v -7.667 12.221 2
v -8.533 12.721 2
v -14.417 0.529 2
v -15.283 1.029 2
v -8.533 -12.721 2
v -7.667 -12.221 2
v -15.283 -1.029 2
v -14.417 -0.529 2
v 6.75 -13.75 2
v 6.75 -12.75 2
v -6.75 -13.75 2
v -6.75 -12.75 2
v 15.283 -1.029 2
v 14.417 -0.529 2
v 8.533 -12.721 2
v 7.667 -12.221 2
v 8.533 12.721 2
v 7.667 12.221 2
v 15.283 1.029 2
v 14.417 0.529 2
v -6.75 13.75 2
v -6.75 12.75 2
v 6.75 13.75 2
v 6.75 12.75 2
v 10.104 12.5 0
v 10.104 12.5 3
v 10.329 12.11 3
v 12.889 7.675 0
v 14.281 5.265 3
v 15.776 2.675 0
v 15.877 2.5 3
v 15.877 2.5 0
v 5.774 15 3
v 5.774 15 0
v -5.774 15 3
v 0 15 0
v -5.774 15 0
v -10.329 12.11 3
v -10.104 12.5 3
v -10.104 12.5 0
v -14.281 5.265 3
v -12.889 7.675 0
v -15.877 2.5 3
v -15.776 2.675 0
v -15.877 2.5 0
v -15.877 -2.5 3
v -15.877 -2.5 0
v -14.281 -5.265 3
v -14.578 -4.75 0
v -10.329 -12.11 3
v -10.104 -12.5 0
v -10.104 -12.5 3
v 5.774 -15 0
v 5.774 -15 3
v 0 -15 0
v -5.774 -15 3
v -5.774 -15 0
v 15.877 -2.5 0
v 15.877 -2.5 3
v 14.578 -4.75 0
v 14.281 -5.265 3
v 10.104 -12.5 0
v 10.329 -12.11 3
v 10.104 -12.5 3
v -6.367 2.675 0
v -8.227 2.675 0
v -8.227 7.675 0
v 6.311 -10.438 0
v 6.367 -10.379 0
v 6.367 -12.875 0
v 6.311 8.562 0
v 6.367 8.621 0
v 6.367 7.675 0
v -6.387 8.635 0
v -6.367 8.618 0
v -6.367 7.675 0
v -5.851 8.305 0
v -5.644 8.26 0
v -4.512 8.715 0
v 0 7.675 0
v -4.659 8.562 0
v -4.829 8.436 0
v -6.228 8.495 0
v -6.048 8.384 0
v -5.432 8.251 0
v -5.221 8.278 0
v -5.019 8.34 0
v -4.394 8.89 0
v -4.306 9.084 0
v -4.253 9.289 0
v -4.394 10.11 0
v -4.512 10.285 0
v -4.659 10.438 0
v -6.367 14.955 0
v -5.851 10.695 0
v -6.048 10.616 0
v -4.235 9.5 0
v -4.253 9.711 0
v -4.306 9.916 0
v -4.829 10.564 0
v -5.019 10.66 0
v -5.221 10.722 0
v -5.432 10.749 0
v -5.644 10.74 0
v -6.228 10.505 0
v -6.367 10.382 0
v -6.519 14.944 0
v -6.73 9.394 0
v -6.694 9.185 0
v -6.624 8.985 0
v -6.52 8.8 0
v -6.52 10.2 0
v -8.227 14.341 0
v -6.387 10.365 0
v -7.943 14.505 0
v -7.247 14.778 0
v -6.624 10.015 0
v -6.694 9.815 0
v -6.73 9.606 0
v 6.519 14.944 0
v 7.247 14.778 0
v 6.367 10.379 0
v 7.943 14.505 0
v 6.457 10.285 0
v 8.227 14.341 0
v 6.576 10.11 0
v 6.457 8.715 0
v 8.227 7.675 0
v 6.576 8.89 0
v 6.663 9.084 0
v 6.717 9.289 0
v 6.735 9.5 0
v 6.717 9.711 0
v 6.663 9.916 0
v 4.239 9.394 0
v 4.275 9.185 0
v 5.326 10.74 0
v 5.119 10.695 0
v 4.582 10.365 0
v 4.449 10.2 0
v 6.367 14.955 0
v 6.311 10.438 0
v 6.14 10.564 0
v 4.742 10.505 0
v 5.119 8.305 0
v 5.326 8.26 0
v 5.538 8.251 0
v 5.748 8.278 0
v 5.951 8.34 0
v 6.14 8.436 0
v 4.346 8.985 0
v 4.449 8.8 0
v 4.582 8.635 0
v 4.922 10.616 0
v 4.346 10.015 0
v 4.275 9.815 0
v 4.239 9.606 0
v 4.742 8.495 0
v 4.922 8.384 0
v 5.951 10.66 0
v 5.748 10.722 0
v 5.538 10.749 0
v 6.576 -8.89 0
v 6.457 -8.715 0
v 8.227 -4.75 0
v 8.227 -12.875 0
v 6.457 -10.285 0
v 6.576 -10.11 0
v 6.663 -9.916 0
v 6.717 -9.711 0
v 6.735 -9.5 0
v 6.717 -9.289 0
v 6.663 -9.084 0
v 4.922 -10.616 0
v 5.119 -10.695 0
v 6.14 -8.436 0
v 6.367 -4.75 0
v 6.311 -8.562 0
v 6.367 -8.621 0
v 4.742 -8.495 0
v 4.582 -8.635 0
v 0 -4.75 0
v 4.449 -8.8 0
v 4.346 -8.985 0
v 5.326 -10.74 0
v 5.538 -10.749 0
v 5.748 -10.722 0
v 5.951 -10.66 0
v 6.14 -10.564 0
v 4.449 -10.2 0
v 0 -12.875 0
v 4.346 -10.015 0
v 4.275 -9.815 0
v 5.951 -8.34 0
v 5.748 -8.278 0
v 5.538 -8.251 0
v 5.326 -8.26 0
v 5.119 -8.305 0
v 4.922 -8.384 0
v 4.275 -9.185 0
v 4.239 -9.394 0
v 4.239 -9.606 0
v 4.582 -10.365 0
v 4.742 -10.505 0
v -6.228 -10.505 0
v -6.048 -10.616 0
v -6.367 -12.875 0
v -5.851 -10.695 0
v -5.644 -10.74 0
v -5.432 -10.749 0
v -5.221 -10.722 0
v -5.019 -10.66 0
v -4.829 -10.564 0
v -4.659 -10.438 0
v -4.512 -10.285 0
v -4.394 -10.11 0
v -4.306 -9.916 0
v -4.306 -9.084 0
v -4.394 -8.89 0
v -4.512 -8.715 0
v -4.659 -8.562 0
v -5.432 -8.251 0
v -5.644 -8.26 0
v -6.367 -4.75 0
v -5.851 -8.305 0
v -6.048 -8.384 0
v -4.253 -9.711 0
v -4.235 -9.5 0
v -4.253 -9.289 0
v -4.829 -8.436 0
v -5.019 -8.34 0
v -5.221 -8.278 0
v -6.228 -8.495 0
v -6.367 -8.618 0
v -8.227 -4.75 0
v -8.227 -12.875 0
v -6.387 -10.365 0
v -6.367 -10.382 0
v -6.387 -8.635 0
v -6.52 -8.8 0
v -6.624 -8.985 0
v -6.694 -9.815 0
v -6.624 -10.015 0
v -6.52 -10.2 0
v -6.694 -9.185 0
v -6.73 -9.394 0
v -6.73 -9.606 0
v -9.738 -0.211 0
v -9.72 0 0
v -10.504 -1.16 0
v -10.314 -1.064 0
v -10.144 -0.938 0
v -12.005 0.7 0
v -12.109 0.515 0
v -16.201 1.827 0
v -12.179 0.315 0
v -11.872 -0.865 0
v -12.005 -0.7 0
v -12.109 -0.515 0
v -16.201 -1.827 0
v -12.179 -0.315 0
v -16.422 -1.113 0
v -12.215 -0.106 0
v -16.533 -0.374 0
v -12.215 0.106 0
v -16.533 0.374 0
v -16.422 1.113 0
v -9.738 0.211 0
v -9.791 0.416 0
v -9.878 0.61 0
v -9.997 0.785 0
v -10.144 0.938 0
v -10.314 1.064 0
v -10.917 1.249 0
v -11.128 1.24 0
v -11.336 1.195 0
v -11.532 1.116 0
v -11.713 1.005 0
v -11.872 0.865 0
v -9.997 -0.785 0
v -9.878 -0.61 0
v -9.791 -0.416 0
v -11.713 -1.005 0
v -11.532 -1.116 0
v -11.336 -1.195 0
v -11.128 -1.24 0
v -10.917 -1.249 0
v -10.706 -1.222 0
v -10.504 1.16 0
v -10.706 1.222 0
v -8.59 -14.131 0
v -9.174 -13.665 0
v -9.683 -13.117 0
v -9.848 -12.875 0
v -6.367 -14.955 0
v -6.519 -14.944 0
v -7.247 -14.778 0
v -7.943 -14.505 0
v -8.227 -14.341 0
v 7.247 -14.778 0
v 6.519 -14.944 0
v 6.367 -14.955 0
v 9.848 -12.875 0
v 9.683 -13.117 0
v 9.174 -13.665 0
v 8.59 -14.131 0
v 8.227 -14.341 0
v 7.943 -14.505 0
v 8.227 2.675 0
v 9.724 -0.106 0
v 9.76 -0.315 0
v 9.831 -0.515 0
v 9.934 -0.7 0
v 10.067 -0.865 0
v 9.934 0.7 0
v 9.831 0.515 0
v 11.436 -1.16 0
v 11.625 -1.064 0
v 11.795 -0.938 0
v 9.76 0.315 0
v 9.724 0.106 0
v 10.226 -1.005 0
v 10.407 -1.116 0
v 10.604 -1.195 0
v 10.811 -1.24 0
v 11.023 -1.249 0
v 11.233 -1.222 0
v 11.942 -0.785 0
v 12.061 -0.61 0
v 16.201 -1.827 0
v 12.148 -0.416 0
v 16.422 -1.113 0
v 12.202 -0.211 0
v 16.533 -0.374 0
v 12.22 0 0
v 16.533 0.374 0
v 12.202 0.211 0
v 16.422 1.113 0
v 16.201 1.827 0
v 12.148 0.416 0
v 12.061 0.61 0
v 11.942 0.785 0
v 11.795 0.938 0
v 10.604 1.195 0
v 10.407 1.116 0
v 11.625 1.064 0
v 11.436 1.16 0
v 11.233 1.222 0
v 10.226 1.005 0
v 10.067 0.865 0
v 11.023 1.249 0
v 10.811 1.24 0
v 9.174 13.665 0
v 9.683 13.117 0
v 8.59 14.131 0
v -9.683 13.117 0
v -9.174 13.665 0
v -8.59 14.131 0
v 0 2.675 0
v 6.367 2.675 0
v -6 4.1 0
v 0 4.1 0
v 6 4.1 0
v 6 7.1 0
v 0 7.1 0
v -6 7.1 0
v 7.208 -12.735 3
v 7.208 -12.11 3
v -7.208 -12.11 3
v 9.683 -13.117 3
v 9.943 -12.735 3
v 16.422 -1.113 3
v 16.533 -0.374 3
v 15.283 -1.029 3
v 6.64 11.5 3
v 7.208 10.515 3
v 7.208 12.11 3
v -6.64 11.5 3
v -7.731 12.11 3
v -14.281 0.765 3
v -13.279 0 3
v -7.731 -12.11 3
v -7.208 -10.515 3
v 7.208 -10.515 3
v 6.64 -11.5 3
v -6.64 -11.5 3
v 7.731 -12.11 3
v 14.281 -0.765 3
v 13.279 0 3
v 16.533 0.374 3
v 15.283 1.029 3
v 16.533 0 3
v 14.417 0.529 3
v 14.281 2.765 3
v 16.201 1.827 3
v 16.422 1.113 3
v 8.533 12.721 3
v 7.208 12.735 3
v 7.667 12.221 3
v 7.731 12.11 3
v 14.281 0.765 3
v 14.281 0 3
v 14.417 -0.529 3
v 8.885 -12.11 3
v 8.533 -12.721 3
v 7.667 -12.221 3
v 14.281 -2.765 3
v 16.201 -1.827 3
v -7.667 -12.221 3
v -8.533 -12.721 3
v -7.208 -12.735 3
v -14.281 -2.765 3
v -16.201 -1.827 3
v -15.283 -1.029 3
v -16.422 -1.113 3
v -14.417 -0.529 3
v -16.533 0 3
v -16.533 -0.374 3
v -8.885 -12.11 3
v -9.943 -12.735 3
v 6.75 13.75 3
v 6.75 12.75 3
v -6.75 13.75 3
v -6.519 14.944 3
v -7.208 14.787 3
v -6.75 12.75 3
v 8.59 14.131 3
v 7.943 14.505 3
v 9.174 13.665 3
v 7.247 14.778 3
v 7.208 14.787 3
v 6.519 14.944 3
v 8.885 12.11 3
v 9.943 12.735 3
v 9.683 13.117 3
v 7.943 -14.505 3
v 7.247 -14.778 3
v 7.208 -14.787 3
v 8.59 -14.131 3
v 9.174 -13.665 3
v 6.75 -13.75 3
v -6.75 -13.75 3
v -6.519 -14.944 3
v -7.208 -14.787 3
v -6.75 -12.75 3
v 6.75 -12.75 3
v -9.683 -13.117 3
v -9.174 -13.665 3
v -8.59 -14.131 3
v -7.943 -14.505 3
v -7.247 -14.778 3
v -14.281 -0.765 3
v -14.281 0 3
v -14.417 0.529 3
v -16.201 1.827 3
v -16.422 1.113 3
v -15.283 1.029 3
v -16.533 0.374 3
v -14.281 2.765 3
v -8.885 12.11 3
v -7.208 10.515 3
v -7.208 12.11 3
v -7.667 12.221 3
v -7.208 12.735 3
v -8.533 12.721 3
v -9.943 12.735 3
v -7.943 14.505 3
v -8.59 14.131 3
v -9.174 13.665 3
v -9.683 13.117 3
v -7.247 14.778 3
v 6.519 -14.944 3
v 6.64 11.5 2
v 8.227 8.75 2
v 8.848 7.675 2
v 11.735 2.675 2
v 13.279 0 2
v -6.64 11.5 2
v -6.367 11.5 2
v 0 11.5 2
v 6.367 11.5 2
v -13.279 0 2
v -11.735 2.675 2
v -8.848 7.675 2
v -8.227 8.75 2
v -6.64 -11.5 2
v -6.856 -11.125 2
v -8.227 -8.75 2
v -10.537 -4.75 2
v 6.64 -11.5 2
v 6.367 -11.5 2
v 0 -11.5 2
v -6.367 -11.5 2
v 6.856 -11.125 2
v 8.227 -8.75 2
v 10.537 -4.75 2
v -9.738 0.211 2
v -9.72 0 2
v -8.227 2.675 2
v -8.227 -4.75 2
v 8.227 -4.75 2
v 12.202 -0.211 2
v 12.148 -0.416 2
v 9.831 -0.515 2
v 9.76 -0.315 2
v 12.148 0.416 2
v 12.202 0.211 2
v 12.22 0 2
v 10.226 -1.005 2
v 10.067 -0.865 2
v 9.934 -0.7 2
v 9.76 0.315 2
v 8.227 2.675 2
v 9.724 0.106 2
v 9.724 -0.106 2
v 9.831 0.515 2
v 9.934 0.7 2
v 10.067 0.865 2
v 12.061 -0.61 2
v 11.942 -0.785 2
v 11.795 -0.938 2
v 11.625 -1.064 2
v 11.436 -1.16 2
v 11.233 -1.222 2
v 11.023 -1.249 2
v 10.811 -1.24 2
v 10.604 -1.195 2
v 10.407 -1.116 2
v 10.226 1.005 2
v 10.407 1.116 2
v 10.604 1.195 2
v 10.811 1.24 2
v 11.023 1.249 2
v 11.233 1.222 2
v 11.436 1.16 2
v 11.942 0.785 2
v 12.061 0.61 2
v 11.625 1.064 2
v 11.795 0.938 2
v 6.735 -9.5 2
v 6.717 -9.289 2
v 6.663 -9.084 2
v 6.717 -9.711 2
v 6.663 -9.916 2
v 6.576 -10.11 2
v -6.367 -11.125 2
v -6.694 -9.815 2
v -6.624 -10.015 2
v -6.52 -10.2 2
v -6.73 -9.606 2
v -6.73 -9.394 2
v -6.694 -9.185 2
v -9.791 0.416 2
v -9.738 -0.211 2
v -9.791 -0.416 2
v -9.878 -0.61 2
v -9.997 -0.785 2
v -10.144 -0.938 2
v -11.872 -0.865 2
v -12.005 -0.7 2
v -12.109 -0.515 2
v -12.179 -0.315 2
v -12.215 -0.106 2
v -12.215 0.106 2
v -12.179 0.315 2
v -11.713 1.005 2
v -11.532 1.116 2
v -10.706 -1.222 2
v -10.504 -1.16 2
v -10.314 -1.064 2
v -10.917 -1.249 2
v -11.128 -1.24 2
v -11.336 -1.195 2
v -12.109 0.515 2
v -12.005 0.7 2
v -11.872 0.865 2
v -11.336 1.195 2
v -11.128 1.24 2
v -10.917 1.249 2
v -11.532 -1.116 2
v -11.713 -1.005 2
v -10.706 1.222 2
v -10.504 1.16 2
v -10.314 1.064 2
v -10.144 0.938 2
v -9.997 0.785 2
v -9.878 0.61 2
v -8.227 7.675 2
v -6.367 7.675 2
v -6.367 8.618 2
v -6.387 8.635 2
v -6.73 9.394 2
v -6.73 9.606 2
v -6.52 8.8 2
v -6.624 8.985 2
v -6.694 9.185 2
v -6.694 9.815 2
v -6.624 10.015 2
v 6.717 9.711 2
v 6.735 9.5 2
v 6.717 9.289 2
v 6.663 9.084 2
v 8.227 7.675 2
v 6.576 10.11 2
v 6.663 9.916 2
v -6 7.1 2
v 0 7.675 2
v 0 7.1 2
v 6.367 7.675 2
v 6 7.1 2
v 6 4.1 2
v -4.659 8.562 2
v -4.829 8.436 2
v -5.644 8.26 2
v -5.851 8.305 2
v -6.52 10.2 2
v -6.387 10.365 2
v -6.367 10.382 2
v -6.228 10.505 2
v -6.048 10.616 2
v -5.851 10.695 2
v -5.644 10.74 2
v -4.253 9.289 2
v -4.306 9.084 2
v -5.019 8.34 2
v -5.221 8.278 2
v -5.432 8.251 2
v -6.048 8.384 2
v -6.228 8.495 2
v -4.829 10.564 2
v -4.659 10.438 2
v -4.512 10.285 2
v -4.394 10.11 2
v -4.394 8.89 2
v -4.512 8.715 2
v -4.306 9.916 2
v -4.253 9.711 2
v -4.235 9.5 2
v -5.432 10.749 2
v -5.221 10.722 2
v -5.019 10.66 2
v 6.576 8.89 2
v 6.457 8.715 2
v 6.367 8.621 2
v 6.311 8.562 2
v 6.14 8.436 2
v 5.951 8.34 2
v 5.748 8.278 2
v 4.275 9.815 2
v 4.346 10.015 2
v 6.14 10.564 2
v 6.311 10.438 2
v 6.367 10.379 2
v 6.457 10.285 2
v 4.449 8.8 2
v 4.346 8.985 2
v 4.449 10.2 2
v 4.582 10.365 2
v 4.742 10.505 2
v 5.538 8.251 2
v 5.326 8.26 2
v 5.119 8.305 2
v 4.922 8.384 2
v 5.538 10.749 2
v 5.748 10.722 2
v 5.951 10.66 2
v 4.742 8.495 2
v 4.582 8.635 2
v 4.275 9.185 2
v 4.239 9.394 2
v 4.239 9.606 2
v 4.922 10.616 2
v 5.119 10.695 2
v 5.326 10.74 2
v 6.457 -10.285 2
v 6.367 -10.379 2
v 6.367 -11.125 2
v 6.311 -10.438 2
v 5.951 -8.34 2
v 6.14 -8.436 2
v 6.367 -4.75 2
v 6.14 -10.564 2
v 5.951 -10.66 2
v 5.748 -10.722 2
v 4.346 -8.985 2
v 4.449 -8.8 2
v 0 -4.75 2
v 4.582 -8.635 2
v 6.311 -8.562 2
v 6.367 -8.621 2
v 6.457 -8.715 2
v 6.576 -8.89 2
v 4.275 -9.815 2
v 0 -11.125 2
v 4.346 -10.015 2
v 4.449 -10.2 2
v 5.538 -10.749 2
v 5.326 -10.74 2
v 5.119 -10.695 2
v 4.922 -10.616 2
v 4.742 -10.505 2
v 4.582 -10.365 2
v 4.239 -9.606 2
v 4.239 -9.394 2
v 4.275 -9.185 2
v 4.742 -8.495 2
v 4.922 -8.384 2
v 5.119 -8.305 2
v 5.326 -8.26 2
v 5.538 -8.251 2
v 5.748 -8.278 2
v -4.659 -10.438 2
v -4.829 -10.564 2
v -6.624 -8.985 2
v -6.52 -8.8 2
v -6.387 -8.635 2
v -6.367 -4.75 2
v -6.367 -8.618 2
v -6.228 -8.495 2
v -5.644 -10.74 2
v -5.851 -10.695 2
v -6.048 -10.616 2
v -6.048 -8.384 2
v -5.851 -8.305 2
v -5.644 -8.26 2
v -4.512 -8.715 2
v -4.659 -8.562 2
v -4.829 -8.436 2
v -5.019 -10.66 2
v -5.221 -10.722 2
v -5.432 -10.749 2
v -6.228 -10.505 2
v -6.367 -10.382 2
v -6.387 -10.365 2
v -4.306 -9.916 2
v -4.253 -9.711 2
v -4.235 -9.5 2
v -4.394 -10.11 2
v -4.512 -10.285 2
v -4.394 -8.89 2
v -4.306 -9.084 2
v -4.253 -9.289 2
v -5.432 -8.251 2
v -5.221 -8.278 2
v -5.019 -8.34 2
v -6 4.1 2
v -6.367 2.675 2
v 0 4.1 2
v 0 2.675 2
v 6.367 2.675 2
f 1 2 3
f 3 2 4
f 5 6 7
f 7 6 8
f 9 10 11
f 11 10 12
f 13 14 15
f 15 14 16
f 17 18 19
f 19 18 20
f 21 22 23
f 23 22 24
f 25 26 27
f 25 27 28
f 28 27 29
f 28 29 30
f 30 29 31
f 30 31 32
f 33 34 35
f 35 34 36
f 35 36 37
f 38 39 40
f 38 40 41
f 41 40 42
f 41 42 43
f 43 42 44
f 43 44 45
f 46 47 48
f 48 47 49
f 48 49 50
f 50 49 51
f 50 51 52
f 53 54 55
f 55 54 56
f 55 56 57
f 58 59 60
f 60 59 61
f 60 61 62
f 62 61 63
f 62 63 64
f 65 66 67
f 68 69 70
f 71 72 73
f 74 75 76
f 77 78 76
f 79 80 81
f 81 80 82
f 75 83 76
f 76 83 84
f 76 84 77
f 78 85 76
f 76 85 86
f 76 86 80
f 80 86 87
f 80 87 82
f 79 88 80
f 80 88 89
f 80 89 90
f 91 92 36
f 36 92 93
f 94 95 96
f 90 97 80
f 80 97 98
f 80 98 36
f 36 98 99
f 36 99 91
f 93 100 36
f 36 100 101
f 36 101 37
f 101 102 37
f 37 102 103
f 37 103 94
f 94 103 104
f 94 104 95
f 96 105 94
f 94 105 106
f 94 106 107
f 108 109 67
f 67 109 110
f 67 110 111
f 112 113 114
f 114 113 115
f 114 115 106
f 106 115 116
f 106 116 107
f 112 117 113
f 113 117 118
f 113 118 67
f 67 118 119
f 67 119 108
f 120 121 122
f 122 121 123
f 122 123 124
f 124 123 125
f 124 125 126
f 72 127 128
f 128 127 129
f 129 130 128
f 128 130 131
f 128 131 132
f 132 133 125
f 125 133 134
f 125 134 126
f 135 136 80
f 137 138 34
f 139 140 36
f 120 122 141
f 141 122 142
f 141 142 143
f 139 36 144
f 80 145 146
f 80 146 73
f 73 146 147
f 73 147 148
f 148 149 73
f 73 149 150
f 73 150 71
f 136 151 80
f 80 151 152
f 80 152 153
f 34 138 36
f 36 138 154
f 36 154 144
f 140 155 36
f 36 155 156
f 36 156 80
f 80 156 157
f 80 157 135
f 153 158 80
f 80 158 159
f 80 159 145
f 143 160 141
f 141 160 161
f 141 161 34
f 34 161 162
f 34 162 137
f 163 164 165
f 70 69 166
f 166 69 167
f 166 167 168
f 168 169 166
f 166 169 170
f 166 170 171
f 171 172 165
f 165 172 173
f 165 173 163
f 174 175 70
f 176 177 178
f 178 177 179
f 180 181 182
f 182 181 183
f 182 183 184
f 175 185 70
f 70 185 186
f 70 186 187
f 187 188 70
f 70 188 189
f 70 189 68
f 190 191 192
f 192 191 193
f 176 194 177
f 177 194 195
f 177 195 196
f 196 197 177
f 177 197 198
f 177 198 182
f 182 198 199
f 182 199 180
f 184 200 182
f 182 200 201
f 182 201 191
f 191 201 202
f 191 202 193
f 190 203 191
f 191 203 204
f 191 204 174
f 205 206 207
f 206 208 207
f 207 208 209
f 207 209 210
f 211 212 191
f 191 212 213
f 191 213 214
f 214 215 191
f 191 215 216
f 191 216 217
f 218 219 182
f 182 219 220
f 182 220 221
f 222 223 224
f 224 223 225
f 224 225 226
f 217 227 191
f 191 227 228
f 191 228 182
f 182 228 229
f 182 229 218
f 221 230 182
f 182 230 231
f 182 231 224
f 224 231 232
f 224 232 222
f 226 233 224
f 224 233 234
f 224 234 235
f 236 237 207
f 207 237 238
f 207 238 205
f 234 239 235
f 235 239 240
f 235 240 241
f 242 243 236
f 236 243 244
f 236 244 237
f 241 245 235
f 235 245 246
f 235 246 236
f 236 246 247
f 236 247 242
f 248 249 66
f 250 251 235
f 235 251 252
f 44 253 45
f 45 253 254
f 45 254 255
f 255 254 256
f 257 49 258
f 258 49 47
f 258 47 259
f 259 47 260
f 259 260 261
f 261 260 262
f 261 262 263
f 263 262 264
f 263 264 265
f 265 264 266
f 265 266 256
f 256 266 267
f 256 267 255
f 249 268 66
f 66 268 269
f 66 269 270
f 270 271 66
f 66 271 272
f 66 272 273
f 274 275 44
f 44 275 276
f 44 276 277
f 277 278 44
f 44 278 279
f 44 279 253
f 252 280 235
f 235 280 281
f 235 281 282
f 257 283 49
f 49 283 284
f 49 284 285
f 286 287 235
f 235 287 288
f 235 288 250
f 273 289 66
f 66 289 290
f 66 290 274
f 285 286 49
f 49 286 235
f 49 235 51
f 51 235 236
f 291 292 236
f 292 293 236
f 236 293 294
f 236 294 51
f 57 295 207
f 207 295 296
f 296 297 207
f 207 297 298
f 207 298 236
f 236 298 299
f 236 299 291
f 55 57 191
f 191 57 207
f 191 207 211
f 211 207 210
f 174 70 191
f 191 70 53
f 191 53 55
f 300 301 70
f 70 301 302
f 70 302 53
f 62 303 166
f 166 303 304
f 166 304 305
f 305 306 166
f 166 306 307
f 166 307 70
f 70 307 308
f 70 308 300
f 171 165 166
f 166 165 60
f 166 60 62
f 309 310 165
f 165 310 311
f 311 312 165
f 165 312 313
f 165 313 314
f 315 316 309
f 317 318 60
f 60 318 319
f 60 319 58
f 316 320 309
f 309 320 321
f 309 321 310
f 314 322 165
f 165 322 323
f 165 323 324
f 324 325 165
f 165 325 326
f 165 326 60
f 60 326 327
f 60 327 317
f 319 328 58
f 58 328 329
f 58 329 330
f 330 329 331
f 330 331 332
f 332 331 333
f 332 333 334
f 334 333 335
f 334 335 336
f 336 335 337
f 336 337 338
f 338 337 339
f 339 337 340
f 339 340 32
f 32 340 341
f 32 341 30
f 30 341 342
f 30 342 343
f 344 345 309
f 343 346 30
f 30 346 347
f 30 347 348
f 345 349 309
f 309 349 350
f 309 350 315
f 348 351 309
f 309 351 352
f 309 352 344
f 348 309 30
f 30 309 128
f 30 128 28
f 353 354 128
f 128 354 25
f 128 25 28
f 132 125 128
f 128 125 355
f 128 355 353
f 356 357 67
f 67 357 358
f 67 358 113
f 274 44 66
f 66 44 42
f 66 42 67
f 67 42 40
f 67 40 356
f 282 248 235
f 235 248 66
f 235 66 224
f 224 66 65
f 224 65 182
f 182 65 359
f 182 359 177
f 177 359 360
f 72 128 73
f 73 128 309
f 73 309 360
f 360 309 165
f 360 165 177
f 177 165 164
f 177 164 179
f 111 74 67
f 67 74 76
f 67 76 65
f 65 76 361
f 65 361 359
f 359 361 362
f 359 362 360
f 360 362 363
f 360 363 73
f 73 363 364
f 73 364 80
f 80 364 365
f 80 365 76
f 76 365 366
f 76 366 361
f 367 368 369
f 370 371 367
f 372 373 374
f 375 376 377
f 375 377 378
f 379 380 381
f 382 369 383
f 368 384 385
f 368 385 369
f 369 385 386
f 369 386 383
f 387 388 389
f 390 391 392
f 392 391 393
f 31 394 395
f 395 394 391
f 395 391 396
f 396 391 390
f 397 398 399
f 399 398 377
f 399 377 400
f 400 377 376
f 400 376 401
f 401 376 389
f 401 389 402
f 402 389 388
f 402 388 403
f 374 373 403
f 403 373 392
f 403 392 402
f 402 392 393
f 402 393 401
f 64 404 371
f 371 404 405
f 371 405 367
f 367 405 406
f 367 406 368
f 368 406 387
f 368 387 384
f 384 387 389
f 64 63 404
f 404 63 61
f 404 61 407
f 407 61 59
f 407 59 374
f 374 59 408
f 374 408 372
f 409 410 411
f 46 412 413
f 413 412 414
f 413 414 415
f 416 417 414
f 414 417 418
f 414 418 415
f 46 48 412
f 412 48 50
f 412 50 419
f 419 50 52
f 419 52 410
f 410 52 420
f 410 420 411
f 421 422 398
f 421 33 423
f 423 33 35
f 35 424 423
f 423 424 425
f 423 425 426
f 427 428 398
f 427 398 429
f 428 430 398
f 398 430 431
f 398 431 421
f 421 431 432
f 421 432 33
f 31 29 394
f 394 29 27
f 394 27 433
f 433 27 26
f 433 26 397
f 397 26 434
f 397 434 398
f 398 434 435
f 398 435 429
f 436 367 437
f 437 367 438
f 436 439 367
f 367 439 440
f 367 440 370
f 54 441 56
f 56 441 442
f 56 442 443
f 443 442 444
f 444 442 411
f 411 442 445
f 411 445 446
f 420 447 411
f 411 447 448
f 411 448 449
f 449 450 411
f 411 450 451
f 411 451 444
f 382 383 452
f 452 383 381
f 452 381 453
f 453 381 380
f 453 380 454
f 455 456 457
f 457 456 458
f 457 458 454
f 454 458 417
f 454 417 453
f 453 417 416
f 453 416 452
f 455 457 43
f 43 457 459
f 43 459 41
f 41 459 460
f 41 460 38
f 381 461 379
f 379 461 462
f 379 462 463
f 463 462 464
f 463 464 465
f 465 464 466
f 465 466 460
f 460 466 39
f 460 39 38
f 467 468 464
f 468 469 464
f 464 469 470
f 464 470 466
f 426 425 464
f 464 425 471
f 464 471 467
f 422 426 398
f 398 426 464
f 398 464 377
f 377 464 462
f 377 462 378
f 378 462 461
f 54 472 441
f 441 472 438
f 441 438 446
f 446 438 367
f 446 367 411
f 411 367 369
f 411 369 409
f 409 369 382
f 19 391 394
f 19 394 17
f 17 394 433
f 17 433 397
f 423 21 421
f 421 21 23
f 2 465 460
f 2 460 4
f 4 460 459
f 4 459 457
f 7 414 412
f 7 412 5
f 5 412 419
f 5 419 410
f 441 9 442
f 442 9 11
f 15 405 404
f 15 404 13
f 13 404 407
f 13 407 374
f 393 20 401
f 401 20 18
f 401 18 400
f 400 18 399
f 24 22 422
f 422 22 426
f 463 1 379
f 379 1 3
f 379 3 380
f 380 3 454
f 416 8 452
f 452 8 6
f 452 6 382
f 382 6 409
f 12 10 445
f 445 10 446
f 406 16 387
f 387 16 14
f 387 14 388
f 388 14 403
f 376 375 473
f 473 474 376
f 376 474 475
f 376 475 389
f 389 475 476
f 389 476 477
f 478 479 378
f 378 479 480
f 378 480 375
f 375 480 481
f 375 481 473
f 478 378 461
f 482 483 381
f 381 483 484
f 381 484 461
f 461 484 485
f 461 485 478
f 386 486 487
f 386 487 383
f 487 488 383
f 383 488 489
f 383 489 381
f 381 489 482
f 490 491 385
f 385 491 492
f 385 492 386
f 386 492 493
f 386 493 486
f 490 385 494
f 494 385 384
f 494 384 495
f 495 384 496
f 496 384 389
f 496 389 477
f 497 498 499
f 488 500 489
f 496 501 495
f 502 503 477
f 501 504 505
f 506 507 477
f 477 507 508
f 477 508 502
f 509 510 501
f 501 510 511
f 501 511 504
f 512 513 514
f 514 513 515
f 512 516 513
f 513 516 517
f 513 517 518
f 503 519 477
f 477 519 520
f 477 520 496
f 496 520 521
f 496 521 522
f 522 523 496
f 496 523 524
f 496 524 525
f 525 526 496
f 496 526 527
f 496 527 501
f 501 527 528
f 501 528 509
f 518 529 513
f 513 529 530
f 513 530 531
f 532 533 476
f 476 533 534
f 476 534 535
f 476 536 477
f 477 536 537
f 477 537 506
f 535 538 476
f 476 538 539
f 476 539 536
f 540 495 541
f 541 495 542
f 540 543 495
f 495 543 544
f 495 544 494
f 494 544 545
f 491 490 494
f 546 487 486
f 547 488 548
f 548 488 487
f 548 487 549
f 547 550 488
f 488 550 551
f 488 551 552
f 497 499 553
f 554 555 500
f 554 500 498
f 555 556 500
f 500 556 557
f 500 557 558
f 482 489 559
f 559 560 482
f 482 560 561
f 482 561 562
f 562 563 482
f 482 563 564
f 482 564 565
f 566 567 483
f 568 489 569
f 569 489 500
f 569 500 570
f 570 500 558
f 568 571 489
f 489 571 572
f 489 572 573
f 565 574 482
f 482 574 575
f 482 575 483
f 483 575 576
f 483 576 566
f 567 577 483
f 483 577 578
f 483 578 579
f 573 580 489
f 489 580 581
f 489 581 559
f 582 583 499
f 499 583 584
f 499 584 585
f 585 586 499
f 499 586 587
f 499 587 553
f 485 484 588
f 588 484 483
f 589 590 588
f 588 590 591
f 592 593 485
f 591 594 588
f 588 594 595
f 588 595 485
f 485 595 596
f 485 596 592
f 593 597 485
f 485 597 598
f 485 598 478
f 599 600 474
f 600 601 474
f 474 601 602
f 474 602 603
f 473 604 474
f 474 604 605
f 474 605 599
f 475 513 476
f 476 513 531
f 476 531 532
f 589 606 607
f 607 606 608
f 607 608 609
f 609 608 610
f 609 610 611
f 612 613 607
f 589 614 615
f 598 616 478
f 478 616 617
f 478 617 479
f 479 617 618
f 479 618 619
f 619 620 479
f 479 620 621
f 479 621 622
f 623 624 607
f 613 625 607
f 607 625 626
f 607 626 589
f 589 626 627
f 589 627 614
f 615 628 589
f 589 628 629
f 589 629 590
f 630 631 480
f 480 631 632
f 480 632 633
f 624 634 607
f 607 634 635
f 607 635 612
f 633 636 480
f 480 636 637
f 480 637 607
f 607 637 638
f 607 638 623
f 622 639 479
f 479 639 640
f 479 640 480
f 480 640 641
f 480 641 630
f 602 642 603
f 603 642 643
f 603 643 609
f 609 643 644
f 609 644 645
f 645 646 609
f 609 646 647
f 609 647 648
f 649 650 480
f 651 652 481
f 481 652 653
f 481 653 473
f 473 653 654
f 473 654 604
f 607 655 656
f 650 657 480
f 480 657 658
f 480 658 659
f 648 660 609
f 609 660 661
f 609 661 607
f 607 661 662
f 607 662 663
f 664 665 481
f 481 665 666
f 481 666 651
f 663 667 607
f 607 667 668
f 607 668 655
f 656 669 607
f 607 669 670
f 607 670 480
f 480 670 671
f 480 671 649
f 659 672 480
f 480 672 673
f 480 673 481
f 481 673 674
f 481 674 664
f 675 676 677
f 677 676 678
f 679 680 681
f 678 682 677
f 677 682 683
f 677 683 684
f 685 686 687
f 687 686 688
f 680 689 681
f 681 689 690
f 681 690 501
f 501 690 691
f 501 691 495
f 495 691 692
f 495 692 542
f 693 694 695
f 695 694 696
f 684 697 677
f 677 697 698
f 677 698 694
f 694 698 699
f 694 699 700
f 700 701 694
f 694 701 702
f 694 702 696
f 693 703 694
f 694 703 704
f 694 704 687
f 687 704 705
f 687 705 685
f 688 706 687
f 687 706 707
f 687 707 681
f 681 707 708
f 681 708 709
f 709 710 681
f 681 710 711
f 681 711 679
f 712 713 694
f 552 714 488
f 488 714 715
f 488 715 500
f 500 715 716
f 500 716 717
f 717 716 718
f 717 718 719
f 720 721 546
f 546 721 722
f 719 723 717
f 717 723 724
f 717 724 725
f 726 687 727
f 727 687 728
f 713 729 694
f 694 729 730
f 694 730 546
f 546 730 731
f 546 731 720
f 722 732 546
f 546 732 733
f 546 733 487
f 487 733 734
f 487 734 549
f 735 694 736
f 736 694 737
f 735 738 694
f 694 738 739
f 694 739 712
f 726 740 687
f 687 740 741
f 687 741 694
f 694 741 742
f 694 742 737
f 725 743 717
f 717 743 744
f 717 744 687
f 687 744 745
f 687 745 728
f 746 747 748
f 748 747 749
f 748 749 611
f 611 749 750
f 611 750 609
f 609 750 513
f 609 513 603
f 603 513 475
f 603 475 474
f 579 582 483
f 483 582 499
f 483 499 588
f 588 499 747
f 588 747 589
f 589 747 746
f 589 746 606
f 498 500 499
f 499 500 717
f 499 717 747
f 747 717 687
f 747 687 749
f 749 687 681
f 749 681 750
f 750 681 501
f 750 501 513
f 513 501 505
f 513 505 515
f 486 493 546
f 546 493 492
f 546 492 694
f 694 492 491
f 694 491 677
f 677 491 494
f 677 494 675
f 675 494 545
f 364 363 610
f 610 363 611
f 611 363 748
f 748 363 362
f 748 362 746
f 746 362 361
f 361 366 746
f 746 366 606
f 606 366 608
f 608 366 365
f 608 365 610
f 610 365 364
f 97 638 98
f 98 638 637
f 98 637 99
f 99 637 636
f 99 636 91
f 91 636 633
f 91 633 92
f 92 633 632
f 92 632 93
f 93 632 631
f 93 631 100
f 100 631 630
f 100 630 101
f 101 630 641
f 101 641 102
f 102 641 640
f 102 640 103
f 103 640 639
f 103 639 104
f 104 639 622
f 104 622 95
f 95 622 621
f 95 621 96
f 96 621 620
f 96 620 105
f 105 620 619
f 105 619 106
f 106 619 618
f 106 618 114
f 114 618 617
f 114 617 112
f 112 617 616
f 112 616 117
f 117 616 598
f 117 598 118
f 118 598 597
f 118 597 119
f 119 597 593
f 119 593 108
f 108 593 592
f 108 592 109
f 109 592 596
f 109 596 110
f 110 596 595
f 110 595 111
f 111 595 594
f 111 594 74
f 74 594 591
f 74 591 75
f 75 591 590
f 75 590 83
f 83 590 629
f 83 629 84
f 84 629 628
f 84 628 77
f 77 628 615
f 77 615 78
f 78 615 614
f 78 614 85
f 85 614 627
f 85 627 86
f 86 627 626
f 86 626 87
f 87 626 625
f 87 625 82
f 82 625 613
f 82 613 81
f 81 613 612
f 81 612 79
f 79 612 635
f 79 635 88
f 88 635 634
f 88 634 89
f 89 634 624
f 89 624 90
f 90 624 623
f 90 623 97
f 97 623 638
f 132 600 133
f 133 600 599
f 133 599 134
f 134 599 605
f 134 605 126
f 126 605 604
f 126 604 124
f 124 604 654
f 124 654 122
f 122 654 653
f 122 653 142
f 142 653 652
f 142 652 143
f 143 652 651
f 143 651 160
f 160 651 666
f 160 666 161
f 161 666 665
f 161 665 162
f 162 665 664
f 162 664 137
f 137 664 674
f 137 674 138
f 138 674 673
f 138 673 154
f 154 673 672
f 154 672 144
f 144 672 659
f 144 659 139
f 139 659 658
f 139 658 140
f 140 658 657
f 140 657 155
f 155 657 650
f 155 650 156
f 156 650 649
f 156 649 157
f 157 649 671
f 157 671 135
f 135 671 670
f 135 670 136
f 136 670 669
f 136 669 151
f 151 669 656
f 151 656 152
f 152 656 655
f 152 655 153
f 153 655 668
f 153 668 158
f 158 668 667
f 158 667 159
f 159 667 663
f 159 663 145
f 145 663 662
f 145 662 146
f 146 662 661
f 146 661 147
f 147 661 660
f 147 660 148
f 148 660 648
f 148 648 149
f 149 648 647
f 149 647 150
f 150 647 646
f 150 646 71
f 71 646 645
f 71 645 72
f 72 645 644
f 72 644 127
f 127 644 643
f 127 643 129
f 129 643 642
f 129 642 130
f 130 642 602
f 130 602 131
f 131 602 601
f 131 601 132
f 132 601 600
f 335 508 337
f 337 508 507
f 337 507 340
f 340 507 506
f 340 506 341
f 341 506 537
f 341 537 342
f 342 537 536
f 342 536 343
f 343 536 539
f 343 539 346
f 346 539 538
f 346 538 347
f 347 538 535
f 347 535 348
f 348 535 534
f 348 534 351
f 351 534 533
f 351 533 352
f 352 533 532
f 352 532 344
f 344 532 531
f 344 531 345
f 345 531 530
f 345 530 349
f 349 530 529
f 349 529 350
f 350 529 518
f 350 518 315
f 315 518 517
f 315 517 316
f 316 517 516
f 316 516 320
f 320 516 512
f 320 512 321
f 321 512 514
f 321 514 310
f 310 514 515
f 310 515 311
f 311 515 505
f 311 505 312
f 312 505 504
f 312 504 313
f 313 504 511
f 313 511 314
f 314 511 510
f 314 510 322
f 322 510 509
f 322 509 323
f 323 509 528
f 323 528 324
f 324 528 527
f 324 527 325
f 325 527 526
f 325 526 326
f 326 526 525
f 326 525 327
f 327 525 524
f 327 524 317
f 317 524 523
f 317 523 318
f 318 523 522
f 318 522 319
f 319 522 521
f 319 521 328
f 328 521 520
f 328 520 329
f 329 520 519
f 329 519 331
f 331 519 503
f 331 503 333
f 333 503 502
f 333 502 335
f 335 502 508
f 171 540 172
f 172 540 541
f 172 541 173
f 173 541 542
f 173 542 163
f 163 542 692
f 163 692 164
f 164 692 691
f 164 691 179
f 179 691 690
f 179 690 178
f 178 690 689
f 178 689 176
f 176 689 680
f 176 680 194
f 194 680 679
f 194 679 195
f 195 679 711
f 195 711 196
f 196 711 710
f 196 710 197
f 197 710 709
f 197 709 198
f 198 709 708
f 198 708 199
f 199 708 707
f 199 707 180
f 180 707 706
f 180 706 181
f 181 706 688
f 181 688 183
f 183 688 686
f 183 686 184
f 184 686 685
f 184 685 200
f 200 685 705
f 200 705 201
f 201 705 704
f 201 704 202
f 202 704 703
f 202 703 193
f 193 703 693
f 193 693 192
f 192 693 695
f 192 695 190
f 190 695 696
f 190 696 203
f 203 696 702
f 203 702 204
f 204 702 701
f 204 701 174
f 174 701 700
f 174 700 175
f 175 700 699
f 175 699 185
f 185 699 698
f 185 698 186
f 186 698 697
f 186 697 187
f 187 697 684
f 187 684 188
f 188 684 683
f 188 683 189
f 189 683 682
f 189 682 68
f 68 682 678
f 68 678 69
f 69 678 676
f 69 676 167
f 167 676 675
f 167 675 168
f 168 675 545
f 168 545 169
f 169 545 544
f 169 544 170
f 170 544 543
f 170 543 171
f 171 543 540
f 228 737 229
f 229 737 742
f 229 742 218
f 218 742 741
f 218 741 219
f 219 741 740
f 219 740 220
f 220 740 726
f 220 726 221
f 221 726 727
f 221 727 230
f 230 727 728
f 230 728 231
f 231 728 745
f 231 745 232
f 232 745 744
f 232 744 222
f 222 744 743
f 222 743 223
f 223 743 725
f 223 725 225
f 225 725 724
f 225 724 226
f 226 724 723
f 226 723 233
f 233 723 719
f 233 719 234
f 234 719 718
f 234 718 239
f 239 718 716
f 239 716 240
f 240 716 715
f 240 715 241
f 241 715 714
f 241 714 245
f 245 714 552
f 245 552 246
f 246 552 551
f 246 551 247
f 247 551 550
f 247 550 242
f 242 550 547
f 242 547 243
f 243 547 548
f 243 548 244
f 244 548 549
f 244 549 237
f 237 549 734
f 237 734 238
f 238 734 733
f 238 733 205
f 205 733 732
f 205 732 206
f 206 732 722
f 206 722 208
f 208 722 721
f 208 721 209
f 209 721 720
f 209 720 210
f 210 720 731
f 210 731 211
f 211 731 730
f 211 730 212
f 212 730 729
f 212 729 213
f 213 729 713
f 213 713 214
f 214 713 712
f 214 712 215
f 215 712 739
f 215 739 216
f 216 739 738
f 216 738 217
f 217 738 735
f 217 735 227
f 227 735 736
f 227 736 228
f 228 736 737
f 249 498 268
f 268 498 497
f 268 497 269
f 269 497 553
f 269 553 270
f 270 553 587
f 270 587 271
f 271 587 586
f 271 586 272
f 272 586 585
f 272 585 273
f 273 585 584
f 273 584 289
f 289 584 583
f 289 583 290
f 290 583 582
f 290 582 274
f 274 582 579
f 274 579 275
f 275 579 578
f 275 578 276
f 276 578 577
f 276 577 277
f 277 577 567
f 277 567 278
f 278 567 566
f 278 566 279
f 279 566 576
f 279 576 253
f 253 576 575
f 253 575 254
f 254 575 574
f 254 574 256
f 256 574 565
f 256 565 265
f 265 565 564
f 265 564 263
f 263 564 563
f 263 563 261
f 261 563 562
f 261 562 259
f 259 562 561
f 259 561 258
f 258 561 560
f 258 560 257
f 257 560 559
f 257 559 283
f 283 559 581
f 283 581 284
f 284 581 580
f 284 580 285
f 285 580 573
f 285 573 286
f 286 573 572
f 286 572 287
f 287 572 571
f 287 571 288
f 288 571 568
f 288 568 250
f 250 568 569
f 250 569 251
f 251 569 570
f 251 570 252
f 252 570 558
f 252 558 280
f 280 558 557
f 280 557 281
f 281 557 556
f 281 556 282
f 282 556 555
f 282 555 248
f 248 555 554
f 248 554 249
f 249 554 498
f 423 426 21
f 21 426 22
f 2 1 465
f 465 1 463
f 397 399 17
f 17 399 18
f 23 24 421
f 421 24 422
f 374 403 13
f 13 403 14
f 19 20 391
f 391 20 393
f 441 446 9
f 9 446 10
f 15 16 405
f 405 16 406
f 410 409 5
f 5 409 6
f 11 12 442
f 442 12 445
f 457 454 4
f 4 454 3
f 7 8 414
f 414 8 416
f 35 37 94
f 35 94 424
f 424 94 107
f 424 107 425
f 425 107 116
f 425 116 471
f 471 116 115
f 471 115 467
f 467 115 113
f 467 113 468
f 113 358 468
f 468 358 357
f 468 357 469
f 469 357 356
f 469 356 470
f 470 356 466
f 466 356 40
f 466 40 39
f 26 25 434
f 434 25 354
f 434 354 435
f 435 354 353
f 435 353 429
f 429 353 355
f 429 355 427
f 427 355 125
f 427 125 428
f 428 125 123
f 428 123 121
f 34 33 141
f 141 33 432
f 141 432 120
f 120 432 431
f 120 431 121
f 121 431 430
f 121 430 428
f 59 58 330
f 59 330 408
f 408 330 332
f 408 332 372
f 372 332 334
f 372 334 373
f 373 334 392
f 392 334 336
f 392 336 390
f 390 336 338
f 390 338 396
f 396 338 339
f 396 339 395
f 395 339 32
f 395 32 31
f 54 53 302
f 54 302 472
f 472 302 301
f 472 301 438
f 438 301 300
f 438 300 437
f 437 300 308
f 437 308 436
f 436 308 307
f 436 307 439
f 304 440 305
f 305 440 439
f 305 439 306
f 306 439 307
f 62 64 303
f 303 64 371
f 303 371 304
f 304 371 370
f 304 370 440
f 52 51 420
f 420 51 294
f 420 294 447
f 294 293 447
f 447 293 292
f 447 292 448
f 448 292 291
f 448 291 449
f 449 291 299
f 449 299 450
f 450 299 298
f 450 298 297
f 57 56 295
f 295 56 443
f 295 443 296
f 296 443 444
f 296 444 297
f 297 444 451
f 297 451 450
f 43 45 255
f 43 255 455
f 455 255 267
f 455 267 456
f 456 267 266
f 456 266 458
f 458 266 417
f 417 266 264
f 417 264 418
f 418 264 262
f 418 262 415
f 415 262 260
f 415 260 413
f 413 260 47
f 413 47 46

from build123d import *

# Parameters (mm, degrees)
EXTRUDE_1_DEPTH     = 2
EXTRUDE_2_DEPTH     = 1
EXTRUDE_3_DEPTH     = 1
SKETCH_4_W          = 12
SKETCH_4_H          = 3
CUT_EXTRUDE_1_DEPTH = 3
SKETCH_5_R          = 1.25
CUT_EXTRUDE_2_DEPTH = 3
EXTRUDE_5_REACH     = 5
FILLET_1_R          = 5


with BuildPart() as part:
    # Эскиз1 → Бобышка-Вытянуть1 (new body)
    with BuildSketch(Plane.XY):
        Polygon((8.660254038, 15), (-8.660254038, 15), (-17.320508076, 0), (-8.660254038, -15), (8.660254038, -15), (17.320508076, 0), align=None)
    extrude(amount=EXTRUDE_1_DEPTH)

    # Эскиз2 → Бобышка-Вытянуть2 (add)
    with BuildSketch(Plane.XY.offset(2)):
        Polygon((8.660254038, 15), (-8.660254038, 15), (-17.320508076, 0), (-8.660254038, -15), (8.660254038, -15), (17.320508076, 0), align=None)
        Polygon((7.938566201, 13.75), (-7.938566201, 13.75), (-15.877132403, 0), (-7.938566201, -13.75), (7.938566201, -13.75), (15.877132403, 0), align=None, mode=Mode.SUBTRACT)
    extrude(amount=EXTRUDE_2_DEPTH)

    # Эскиз3 → Бобышка-Вытянуть3 (add)
    with BuildSketch(Plane.XY.offset(2)):
        Polygon((7.361215932, 12.75), (-7.361215932, 12.75), (-14.722431864, 0), (-7.361215932, -12.75), (7.361215932, -12.75), (14.722431864, 0), align=None)
        Polygon((6.639528096, 11.5), (-6.639528096, 11.5), (-13.279056191, 0), (-6.639528096, -11.5), (6.639528096, -11.5), (13.279056191, 0), align=None, mode=Mode.SUBTRACT)
    extrude(amount=EXTRUDE_3_DEPTH)

    # Эскиз4 → Вырез-Вытянуть1 (cut, through all)
    with BuildSketch(Plane.XY.offset(2)):
        with Locations((0, 5.6)):
            Rectangle(SKETCH_4_W, SKETCH_4_H)
    extrude(amount=-CUT_EXTRUDE_1_DEPTH, mode=Mode.SUBTRACT)

    # Эскиз5 → Вырез-Вытянуть2 (cut, through all)
    with BuildSketch(Plane.XY.offset(2)):
        with Locations((-5.484827557, 9.5)):
            Circle(SKETCH_5_R)
        with Locations((5.484827557, 9.5)):
            Circle(SKETCH_5_R)
        with Locations((10.969655115, 0)):
            Circle(SKETCH_5_R)
        with Locations((5.484827557, -9.5)):
            Circle(SKETCH_5_R)
        with Locations((-5.484827557, -9.5)):
            Circle(SKETCH_5_R)
        with Locations((-10.969655115, 0)):
            Circle(SKETCH_5_R)
    extrude(amount=-CUT_EXTRUDE_2_DEPTH, mode=Mode.SUBTRACT)

    # Эскиз7 → Бобышка-Вытянуть5 (add, up to next)
    with BuildSketch(Plane.XY.offset(3), mode=Mode.PRIVATE) as extrude_5_sk1:
        Polygon((-6.75, 11.691342951), (-9.615381057, 13.345671476), (-8.660254038, 15), (-6.75, 15), align=None)
    extrude_5_tool1 = extrude(extrude_5_sk1.sketch, amount=-EXTRUDE_5_REACH, mode=Mode.PRIVATE) - part.part
    add(extrude_5_tool1.solids().sort_by_distance((-7.864315, 13.621393, 3))[0])
    # Эскиз7 → Бобышка-Вытянуть5 (add, up to next)
    with BuildSketch(Plane.XY.offset(3), mode=Mode.PRIVATE) as extrude_5_sk2:
        Polygon((6.75, 11.691342951), (6.75, 15), (8.660254038, 15), (9.615381057, 13.345671476), align=None)
    extrude_5_tool2 = extrude(extrude_5_sk2.sketch, amount=-EXTRUDE_5_REACH, mode=Mode.PRIVATE) - part.part
    add(extrude_5_tool2.solids().sort_by_distance((7.864315, 13.621393, 3))[0])
    # Эскиз7 → Бобышка-Вытянуть5 (add, up to next)
    with BuildSketch(Plane.XY.offset(3), mode=Mode.PRIVATE) as extrude_5_sk3:
        Polygon((13.5, 0), (16.365381057, 1.654328524), (17.320508076, 0), (16.365381057, -1.654328524), align=None)
    extrude_5_tool3 = extrude(extrude_5_sk3.sketch, amount=-EXTRUDE_5_REACH, mode=Mode.PRIVATE) - part.part
    add(extrude_5_tool3.solids().sort_by_distance((15.72863, 0, 3))[0])
    # Эскиз7 → Бобышка-Вытянуть5 (add, up to next)
    with BuildSketch(Plane.XY.offset(3), mode=Mode.PRIVATE) as extrude_5_sk4:
        Polygon((6.75, -11.691342951), (9.615381057, -13.345671476), (8.660254038, -15), (6.75, -15), align=None)
    extrude_5_tool4 = extrude(extrude_5_sk4.sketch, amount=-EXTRUDE_5_REACH, mode=Mode.PRIVATE) - part.part
    add(extrude_5_tool4.solids().sort_by_distance((7.864315, -13.621393, 3))[0])
    # Эскиз7 → Бобышка-Вытянуть5 (add, up to next)
    with BuildSketch(Plane.XY.offset(3), mode=Mode.PRIVATE) as extrude_5_sk5:
        Polygon((-6.75, -11.691342951), (-6.75, -15), (-8.660254038, -15), (-9.615381057, -13.345671476), align=None)
    extrude_5_tool5 = extrude(extrude_5_sk5.sketch, amount=-EXTRUDE_5_REACH, mode=Mode.PRIVATE) - part.part
    add(extrude_5_tool5.solids().sort_by_distance((-7.864315, -13.621393, 3))[0])
    # Эскиз7 → Бобышка-Вытянуть5 (add, up to next)
    with BuildSketch(Plane.XY.offset(3), mode=Mode.PRIVATE) as extrude_5_sk6:
        Polygon((-13.5, 0), (-16.365381057, -1.654328524), (-17.320508076, 0), (-16.365381057, 1.654328524), align=None)
    extrude_5_tool6 = extrude(extrude_5_sk6.sketch, amount=-EXTRUDE_5_REACH, mode=Mode.PRIVATE) - part.part
    add(extrude_5_tool6.solids().sort_by_distance((-15.72863, 0, 3))[0])

    # Скругление1
    fillet_1_edges = [part.edges().sort_by_distance(p)[0] for p in [
        (17.320508076, 0, 1.5),
        (8.660254038, -15, 1.5),
        (-8.660254038, -15, 1.5),
        (-17.320508076, 0, 1.5),
        (-8.660254038, 15, 1.5),
        (8.660254038, 15, 1.5),
    ]]
    fillet(fillet_1_edges, radius=FILLET_1_R)


solid = part.part
